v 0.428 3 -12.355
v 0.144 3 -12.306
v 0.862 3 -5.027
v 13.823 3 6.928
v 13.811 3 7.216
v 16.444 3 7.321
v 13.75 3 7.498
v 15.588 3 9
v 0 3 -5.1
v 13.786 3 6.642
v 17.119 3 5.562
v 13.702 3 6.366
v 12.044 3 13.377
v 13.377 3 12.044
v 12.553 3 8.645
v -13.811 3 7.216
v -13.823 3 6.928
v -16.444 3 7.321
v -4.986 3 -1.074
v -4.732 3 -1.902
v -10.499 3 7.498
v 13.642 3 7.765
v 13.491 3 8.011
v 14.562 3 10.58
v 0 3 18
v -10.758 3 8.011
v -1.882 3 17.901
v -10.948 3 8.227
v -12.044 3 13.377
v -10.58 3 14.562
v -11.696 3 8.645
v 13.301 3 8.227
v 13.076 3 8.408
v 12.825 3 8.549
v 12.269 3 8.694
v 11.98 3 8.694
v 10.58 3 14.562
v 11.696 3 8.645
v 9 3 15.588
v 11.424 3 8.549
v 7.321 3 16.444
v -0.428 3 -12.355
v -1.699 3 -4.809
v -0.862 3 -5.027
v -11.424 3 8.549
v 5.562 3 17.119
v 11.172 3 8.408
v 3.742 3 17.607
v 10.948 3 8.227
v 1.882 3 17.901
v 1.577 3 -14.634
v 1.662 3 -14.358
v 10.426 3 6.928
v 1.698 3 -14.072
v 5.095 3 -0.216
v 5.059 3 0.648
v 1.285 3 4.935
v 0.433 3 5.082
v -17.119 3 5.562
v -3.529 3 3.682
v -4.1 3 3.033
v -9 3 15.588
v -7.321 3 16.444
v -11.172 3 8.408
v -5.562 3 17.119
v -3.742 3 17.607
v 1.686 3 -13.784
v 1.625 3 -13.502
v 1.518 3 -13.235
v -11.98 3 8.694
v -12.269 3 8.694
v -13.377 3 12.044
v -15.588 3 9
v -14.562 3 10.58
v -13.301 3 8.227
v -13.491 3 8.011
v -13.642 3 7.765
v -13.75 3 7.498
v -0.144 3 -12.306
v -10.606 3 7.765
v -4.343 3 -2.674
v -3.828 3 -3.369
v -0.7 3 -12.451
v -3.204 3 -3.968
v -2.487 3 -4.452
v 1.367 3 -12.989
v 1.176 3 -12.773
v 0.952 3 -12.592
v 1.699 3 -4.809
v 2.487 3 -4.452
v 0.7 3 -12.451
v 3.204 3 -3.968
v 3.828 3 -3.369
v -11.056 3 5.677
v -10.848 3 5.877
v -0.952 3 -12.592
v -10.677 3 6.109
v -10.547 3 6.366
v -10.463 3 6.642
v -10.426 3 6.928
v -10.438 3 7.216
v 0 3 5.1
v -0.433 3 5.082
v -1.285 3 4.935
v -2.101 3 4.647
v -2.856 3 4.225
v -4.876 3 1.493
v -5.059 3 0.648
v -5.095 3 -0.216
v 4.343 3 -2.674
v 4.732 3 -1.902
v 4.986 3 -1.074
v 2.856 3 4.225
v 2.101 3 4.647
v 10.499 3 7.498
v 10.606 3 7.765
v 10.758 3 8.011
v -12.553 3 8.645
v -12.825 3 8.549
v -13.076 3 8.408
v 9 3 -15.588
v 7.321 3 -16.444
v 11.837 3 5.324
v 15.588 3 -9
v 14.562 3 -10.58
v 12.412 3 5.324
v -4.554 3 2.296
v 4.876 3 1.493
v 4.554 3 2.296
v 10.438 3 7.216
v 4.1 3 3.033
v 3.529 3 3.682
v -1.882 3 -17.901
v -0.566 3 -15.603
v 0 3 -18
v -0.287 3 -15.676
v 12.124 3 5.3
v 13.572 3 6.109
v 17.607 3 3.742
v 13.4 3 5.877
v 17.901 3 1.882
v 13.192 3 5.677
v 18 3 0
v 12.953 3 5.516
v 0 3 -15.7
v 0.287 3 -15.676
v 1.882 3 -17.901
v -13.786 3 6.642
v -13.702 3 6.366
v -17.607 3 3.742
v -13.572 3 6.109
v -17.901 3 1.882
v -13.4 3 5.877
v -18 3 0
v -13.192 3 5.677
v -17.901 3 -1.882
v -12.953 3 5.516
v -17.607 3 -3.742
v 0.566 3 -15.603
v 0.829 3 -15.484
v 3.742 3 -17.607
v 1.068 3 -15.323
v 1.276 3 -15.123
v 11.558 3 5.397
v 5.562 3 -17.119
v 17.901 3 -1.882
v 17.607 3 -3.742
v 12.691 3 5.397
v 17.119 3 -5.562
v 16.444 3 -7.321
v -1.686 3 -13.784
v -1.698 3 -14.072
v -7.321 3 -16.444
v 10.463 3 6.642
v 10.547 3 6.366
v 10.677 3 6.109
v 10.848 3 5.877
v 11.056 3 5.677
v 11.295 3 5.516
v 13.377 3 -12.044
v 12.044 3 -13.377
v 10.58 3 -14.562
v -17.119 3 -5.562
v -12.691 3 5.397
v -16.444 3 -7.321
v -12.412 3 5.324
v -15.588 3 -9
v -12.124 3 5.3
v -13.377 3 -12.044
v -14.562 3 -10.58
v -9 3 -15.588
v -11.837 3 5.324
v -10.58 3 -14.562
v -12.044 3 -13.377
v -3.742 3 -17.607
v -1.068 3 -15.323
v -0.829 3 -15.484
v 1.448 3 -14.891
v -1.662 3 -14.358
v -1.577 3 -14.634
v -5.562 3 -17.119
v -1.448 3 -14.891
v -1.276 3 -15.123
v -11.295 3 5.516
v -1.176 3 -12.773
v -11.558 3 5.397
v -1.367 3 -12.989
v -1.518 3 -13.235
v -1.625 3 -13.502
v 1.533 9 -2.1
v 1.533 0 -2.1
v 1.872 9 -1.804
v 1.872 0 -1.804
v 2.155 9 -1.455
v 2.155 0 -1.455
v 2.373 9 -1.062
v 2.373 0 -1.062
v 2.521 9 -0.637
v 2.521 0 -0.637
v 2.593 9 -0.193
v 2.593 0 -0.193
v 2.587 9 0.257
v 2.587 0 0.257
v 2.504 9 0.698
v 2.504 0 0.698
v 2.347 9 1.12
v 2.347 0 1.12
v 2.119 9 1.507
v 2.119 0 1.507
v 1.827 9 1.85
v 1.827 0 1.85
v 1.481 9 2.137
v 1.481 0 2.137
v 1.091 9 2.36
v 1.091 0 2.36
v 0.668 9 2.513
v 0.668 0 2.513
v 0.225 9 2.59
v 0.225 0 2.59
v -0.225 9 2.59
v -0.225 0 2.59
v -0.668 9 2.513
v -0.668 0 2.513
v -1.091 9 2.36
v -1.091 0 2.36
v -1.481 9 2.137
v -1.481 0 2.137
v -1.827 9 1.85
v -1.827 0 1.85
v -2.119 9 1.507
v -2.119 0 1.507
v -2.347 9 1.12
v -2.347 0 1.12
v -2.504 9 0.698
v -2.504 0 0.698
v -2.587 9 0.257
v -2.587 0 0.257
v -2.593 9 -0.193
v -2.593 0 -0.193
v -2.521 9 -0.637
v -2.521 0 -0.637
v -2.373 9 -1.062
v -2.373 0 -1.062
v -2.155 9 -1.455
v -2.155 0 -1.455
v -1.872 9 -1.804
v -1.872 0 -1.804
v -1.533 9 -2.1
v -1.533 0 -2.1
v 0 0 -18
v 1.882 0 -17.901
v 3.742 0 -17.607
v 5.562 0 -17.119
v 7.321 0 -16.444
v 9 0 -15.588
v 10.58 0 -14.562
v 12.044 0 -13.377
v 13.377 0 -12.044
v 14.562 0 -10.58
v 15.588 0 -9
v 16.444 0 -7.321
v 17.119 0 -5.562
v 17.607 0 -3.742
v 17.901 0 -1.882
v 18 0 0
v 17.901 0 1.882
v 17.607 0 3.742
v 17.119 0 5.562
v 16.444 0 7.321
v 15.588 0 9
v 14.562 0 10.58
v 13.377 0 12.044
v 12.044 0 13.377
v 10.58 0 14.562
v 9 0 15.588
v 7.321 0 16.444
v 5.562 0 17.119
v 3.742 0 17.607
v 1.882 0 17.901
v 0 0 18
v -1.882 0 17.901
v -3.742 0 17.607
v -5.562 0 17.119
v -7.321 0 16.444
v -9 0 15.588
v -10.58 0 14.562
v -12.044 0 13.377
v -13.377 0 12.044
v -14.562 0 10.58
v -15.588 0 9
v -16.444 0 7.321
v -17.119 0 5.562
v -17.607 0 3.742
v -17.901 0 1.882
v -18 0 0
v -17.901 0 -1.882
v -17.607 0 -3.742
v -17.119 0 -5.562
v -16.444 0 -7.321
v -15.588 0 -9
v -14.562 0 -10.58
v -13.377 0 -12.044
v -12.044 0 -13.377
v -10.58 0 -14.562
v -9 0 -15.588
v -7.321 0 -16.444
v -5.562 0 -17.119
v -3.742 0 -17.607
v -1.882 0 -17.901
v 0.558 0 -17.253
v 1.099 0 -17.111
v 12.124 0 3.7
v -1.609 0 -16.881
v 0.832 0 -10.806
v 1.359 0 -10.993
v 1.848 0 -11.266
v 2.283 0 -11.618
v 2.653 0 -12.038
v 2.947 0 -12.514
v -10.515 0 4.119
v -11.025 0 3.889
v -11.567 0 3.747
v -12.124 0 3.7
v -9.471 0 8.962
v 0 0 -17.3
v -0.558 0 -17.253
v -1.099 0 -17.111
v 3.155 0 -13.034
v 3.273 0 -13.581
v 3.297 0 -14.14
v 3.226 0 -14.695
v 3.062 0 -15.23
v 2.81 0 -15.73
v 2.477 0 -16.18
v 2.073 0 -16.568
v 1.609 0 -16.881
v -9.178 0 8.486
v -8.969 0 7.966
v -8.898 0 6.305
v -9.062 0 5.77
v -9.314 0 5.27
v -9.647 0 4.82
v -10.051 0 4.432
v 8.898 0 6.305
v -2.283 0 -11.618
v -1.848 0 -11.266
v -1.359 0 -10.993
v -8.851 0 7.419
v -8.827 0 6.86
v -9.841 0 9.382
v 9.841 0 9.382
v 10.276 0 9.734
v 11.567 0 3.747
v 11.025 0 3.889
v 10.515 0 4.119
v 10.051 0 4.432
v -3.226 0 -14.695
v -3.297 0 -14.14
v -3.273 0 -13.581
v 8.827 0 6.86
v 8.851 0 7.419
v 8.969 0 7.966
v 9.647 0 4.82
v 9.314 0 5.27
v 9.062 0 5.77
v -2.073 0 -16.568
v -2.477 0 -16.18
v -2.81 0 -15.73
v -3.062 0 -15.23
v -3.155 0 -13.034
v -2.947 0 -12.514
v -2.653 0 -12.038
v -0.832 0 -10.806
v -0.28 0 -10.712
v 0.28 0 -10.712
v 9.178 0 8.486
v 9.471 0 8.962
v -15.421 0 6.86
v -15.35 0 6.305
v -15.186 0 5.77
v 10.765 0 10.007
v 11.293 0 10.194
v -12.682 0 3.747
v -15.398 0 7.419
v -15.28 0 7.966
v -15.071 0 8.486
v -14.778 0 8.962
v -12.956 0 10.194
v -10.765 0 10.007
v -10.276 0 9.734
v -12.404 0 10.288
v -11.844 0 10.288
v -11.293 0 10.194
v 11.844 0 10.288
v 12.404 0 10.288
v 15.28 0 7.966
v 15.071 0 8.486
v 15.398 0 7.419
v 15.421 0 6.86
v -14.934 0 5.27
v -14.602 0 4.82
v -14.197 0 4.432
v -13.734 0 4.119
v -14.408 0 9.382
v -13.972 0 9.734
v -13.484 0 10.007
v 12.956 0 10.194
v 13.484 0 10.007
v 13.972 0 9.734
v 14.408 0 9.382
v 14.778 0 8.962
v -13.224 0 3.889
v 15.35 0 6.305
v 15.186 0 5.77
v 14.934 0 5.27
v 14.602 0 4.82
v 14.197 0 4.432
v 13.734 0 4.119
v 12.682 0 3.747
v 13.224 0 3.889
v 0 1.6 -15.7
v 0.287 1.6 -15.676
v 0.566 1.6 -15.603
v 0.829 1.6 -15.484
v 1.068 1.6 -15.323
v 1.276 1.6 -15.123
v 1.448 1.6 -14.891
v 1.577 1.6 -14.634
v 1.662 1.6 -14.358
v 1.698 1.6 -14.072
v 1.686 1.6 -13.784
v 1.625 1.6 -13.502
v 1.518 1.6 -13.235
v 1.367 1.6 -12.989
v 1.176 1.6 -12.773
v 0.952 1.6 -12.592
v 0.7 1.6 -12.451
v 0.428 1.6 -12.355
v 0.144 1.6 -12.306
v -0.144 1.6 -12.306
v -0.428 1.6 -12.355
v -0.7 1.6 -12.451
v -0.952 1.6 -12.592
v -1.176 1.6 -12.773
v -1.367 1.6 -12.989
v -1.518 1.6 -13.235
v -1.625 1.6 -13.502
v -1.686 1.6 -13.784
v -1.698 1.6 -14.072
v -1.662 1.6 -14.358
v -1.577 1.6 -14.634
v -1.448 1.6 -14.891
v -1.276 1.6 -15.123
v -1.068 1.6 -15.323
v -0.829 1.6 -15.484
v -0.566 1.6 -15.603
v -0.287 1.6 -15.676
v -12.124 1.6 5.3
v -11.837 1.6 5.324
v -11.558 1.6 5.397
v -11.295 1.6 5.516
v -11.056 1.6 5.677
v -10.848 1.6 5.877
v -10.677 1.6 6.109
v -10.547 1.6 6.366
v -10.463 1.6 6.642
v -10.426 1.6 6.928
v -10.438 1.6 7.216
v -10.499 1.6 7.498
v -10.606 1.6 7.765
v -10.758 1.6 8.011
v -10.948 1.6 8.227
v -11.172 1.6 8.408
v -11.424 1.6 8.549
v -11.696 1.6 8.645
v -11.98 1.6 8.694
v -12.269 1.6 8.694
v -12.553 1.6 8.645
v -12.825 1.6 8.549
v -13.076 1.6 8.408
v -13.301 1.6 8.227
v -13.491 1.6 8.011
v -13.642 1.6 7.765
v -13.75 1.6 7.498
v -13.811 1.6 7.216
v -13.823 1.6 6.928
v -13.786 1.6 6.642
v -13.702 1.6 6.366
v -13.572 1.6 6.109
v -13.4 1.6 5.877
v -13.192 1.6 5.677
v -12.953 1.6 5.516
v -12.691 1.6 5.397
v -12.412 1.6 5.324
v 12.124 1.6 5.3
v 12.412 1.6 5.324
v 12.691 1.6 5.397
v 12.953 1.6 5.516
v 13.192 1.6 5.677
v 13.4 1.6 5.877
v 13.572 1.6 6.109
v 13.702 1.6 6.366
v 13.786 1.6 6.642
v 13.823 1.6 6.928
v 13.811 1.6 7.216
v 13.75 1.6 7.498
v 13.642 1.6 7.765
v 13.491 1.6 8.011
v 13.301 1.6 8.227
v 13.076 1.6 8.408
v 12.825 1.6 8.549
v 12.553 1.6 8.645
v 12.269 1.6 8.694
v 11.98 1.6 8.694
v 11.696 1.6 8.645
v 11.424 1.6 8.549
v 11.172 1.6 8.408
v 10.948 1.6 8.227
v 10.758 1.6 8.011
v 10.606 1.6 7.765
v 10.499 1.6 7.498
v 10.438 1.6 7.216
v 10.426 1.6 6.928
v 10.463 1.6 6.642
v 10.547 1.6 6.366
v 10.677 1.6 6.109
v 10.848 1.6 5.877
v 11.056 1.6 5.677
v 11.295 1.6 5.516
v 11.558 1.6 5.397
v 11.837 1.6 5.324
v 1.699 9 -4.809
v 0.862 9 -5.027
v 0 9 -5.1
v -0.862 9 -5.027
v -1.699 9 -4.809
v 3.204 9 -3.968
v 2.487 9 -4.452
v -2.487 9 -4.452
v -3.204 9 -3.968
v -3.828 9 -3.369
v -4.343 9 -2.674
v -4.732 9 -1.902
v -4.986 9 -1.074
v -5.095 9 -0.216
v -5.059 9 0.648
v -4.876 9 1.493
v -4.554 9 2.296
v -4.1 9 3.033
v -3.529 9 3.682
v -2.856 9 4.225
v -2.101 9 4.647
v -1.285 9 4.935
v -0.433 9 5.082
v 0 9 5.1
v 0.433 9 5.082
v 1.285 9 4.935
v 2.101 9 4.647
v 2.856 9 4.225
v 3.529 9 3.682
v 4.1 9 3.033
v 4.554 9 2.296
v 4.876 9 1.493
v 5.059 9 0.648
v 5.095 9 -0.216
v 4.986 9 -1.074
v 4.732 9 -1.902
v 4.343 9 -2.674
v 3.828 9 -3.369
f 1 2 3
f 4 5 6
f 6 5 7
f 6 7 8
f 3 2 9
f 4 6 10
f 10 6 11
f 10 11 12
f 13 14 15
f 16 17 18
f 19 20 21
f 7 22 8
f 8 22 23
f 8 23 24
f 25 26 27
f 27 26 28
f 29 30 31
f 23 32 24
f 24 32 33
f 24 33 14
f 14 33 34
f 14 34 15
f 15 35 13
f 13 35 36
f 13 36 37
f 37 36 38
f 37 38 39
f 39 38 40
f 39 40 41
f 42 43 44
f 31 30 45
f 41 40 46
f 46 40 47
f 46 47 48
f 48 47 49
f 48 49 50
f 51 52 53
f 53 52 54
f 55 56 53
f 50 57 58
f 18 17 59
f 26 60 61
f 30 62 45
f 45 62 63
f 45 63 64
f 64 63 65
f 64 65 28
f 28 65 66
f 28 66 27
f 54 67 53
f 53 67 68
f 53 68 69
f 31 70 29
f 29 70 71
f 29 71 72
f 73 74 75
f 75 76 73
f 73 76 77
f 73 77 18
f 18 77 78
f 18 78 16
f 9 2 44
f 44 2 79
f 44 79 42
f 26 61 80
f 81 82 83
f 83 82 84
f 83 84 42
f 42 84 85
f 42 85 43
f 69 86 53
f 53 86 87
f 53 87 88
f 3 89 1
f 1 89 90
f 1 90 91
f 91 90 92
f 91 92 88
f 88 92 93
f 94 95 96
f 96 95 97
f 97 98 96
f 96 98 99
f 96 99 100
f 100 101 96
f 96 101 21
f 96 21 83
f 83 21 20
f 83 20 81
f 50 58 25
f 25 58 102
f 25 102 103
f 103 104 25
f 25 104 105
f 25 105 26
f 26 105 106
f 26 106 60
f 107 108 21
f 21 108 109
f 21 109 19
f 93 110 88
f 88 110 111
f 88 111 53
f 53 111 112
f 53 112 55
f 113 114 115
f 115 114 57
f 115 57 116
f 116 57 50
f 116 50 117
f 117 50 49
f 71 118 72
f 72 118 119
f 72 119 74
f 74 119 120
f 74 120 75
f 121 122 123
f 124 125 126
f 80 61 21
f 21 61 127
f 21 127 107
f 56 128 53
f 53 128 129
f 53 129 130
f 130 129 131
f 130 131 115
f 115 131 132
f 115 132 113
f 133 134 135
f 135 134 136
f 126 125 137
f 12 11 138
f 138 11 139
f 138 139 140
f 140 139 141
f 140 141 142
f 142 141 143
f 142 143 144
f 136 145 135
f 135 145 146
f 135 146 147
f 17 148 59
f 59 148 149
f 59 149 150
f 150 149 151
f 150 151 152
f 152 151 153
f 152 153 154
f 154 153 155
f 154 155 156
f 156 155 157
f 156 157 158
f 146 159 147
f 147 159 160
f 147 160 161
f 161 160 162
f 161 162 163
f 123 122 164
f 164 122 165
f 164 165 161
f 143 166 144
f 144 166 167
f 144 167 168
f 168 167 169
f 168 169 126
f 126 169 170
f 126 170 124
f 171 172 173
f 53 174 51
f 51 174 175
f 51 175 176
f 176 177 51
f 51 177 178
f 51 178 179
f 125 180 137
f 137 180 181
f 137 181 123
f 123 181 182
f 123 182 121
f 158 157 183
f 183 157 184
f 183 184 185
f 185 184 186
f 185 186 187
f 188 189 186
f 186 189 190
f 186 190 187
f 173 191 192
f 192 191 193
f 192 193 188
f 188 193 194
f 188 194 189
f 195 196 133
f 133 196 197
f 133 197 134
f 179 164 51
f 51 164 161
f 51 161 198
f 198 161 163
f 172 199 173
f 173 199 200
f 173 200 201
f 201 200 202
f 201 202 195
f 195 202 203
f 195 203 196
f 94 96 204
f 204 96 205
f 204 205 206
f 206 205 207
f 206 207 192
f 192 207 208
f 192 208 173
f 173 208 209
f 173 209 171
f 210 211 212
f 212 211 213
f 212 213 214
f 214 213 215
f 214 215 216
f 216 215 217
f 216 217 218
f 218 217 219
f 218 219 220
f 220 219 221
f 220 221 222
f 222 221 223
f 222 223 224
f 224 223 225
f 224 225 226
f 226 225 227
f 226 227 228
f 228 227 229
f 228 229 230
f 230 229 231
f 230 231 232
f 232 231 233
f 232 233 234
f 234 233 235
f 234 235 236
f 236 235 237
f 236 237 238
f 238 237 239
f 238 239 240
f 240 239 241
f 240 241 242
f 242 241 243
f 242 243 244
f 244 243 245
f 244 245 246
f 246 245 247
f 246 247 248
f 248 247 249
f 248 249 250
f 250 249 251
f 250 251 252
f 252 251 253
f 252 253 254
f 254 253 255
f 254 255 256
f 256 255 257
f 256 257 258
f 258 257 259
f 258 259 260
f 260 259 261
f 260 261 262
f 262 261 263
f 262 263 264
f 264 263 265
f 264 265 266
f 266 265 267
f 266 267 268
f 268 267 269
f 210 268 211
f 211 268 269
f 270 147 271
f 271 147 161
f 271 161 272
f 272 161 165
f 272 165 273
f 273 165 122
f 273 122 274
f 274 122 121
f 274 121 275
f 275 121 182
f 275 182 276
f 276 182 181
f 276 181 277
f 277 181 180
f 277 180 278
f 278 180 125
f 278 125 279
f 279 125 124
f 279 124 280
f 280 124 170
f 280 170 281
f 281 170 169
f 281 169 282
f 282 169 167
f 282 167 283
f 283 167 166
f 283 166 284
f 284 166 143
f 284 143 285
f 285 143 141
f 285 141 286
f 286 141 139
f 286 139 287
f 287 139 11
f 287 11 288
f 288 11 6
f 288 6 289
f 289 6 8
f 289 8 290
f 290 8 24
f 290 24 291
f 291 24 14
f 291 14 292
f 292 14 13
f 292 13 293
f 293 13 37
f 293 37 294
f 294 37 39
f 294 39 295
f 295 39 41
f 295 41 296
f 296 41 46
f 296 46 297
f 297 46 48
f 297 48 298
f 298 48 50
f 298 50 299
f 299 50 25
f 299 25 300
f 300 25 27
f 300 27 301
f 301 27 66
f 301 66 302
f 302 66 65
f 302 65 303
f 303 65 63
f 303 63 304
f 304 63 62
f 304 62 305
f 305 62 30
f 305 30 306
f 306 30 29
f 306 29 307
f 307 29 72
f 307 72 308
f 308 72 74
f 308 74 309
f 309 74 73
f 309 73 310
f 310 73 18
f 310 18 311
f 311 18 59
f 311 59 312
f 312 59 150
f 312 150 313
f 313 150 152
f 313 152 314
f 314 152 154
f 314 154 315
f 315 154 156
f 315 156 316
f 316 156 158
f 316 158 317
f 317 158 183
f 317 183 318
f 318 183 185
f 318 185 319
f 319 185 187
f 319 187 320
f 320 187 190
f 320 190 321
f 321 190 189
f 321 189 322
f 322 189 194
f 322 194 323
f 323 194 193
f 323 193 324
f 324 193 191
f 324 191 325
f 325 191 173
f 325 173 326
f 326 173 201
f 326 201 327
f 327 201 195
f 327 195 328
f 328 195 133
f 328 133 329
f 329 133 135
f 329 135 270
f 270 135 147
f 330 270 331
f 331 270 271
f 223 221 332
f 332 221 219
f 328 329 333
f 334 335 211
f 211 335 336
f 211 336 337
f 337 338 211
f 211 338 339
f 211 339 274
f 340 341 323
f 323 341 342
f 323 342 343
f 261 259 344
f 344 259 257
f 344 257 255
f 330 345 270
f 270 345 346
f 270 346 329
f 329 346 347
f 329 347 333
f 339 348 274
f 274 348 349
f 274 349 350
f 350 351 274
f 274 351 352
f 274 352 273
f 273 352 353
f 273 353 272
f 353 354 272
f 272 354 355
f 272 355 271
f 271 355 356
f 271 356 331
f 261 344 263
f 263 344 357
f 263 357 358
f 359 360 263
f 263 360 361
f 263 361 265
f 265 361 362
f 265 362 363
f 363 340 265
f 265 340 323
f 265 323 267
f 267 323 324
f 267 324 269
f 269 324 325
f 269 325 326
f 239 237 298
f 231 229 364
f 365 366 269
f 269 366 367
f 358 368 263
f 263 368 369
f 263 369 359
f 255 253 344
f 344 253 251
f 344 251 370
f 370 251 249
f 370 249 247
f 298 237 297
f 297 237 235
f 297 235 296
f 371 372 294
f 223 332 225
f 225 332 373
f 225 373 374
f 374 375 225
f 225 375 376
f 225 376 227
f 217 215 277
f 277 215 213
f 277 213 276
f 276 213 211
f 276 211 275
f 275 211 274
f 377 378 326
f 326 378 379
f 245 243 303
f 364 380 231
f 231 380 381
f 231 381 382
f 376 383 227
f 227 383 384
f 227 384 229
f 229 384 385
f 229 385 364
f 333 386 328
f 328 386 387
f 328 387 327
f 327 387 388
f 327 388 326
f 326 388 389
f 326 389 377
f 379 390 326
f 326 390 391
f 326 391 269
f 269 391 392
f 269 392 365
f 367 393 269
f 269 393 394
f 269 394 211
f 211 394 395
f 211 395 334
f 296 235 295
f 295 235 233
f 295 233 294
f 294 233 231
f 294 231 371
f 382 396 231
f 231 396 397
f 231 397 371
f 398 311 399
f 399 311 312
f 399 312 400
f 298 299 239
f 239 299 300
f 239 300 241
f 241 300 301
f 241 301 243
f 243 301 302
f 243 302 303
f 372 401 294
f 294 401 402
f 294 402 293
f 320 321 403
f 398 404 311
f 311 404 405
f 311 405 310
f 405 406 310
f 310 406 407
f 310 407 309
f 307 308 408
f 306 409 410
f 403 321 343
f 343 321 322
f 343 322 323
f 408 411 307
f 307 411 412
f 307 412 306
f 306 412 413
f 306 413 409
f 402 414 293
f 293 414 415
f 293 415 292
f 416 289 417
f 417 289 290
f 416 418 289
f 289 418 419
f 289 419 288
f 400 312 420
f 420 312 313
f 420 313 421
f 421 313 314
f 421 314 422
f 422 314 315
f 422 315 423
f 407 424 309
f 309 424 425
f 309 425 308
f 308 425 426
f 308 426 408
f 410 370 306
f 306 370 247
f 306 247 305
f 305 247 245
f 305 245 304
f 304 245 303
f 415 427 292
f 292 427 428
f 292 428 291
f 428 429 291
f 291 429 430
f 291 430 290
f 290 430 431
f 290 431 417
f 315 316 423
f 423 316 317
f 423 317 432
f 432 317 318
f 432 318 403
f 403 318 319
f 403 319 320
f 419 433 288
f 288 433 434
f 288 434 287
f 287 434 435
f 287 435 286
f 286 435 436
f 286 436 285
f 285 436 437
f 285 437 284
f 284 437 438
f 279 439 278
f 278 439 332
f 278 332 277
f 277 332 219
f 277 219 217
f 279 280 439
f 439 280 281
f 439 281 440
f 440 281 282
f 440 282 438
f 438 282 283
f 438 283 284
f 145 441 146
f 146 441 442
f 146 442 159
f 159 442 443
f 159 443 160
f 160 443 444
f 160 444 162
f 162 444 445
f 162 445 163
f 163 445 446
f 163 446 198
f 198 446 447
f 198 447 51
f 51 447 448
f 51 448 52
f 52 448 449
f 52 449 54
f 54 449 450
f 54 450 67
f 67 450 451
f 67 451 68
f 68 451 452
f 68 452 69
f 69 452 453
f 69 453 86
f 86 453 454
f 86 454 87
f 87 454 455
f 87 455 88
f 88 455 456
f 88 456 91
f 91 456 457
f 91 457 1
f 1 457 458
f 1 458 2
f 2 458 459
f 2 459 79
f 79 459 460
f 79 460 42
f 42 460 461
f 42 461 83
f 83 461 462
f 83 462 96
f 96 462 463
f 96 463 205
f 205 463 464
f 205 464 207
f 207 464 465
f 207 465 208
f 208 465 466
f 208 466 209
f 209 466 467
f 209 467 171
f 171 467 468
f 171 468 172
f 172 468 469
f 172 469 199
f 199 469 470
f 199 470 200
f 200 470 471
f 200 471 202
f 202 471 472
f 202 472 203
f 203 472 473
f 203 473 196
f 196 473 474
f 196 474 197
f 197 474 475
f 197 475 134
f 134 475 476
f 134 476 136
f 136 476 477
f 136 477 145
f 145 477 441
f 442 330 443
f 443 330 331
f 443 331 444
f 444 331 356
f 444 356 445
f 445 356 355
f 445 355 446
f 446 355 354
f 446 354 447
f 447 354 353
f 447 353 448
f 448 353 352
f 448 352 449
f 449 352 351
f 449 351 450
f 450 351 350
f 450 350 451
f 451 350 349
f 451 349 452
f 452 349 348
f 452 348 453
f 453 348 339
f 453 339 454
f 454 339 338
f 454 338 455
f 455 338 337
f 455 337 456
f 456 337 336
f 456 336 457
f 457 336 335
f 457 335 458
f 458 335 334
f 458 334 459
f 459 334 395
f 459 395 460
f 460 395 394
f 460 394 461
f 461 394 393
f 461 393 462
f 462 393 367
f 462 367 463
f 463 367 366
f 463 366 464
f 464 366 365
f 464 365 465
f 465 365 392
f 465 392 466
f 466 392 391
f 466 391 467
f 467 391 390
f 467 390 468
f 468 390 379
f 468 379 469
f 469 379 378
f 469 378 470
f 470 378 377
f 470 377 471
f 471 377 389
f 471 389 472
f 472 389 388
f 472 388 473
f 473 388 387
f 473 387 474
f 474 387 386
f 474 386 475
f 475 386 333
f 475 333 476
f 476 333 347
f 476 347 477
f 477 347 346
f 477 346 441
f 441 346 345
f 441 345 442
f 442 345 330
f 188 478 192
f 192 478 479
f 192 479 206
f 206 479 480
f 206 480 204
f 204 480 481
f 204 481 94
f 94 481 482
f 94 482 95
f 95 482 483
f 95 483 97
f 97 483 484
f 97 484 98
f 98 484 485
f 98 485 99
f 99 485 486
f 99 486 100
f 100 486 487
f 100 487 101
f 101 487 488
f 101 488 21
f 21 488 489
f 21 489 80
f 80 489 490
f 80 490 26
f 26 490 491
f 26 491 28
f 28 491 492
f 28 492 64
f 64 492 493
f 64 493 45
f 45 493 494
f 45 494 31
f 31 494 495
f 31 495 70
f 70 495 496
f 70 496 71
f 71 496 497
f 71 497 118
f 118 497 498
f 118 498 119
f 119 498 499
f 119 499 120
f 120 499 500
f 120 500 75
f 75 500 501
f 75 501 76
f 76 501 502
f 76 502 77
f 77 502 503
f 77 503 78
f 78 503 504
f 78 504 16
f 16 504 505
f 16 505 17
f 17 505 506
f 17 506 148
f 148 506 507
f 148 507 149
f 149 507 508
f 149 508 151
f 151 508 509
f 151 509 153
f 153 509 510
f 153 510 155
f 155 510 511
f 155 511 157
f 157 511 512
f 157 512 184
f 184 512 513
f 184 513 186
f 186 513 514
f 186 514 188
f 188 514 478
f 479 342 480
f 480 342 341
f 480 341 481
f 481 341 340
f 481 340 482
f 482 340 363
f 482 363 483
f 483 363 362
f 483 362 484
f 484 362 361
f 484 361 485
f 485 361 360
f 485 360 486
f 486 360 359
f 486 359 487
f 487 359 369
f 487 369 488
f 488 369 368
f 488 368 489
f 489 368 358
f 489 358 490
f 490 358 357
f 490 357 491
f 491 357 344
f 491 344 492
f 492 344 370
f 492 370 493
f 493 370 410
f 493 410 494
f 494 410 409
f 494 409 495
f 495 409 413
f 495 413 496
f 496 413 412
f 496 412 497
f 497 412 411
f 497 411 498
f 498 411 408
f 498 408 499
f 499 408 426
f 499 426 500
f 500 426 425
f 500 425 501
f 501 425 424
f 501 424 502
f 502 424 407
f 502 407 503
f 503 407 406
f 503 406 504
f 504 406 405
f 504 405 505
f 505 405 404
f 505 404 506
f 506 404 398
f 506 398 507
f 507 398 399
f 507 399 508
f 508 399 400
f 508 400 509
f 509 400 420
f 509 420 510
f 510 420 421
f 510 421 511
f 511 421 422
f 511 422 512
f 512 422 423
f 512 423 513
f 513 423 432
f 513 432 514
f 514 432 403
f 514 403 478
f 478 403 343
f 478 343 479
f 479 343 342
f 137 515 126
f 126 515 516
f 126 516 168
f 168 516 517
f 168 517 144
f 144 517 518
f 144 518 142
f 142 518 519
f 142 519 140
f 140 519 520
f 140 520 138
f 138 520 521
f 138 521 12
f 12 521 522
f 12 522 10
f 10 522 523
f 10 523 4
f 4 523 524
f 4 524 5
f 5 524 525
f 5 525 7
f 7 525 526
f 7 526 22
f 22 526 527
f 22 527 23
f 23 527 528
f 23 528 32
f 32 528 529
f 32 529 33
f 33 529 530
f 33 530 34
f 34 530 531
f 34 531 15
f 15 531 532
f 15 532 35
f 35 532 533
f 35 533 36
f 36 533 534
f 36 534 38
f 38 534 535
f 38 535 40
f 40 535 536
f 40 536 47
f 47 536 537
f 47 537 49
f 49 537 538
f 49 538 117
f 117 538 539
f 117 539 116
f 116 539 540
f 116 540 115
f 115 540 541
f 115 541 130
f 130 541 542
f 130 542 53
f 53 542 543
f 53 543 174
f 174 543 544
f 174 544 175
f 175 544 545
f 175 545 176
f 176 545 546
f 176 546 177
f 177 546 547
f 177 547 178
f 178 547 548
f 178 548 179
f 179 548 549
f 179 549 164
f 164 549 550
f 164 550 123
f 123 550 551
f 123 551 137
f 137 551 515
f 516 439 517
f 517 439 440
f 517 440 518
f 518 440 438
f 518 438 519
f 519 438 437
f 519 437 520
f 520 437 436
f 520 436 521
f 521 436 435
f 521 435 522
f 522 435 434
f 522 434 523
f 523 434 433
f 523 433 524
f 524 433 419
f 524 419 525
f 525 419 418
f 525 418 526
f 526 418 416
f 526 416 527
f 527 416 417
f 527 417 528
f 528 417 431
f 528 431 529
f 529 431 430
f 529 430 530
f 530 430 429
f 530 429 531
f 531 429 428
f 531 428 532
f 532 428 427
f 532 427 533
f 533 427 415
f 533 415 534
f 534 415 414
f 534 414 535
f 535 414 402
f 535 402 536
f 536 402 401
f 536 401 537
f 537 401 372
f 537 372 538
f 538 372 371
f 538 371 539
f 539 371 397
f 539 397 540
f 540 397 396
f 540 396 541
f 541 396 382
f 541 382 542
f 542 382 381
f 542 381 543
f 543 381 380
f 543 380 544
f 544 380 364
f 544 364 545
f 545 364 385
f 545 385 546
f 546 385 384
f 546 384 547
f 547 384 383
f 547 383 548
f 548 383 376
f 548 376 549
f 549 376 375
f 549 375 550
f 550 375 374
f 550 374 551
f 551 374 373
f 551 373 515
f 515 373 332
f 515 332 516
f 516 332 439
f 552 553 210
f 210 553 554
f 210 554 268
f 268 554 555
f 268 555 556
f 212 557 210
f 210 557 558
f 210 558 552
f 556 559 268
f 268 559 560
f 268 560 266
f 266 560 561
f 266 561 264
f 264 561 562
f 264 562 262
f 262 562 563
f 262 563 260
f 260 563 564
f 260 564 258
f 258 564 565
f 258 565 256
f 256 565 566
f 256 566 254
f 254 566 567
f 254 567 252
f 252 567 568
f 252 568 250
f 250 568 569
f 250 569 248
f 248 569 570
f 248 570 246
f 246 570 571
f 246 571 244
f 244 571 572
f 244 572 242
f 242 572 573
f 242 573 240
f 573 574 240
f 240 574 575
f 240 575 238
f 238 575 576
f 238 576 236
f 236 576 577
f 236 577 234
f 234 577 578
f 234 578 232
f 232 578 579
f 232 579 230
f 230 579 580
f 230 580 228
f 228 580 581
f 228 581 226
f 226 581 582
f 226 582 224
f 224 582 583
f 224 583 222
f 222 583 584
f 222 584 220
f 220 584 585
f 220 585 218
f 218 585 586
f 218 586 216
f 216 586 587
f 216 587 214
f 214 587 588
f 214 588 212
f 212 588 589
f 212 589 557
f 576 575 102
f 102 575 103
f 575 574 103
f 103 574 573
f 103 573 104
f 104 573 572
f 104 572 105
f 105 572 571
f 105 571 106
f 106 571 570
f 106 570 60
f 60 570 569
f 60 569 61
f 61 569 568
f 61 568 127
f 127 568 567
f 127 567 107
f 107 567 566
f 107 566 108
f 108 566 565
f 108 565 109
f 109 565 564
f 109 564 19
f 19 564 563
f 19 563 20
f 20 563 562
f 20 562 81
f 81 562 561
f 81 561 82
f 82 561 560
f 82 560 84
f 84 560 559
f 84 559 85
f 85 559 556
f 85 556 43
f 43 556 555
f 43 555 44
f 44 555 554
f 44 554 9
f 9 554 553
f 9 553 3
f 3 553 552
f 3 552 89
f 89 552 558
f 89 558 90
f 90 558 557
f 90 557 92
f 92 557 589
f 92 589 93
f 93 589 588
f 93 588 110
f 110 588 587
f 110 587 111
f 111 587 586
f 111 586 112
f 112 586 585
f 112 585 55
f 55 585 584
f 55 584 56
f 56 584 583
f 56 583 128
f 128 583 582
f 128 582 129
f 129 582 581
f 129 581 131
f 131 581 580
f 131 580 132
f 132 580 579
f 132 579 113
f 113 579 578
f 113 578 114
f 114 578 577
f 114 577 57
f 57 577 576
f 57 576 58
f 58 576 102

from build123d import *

# Parameters (mm, degrees)
SKETCH_1_R               = 18
SKETCH_1_R_2             = 1.6
EXTRUDE_1_DEPTH          = 3
HOLE_WIZARD_2_AT_2_COUNT = 2
HOLE_WIZARD_2_AT_2_PITCH = 24.248711306
HOLE_WIZARD_2_AT_3_COUNT = 2
HOLE_WIZARD_2_AT_3_PITCH = 24.248711306
SKETCH_9_R               = 5.1
EXTRUDE_2_DEPTH          = 6


with BuildPart() as part:
    # 草图1 → 凸台-拉伸1 (new body)
    with BuildSketch(Plane(origin=(0, 0, 0), x_dir=(1, 0, 0), z_dir=(0, 1, 0))):
        with Locations(Location((0, 0, 0), (0, 0, 270))):
            Circle(SKETCH_1_R)
        with BuildLine():
            Line((-1.532970972, 2.1), (1.532970972, 2.1))
            ThreePointArc((1.532970972, 2.1), (0, -2.6), (-1.532970972, 2.1))
        make_face(mode=Mode.SUBTRACT)
        with Locations(Location((-12.124355653, -7, 0), (0, 0, 270))):
            Circle(SKETCH_1_R_2, mode=Mode.SUBTRACT)
        with Locations(Location((12.124355653, -7, 0), (0, 0, 270))):
            Circle(SKETCH_1_R_2, mode=Mode.SUBTRACT)
        with Locations(Location((0, 14, 0), (0, 0, 270))):
            Circle(SKETCH_1_R_2, mode=Mode.SUBTRACT)
    extrude(amount=EXTRUDE_1_DEPTH)

    # 草图8 → 打孔尺寸(%根据十字)槽沉头木螺钉的类型2 (revolve, cut)
    with BuildSketch(Plane(origin=(12.124355653, 0, 7), x_dir=(0, 0, -1), z_dir=(1, 0, 0))):
        Polygon((0, 0), (0, 3), (1.7, 3), (1.7, 1.6), (3.3, 0), align=None)
    hole_wizard_2 = revolve(axis=Axis((12.124355653, -6.35, 7), (0, 1, 0)), mode=Mode.SUBTRACT)

    # 打孔尺寸(%根据十字)槽沉头木螺钉的类型2 at 2: 打孔尺寸(%根据十字)槽沉头木螺钉的类型2 ×2
    with Locations(*[(-i * HOLE_WIZARD_2_AT_2_PITCH, 0, 0) for i in range(1, HOLE_WIZARD_2_AT_2_COUNT)]):
        add(hole_wizard_2, mode=Mode.SUBTRACT)

    # 打孔尺寸(%根据十字)槽沉头木螺钉的类型2 at 3: 打孔尺寸(%根据十字)槽沉头木螺钉的类型2 ×2
    with Locations(*[Vector(-0.5000000000000048, 0, -0.8660254037844359) * (i * HOLE_WIZARD_2_AT_3_PITCH) for i in range(1, HOLE_WIZARD_2_AT_3_COUNT)]):
        add(hole_wizard_2, mode=Mode.SUBTRACT)

    # 草图9 → 凸台-拉伸2 (add)
    with BuildSketch(Plane(origin=(0, 3, 0), x_dir=(1, 0, 0), z_dir=(0, 1, 0))):
        with Locations(Location((0, 0, 0), (0, 0, 270))):
            Circle(SKETCH_9_R)
        with BuildLine():
            Line((-1.532970972, 2.1), (1.532970972, 2.1))
            ThreePointArc((1.532970972, 2.1), (0, -2.6), (-1.532970972, 2.1))
        make_face(mode=Mode.SUBTRACT)
    extrude(amount=EXTRUDE_2_DEPTH)


solid = part.part
